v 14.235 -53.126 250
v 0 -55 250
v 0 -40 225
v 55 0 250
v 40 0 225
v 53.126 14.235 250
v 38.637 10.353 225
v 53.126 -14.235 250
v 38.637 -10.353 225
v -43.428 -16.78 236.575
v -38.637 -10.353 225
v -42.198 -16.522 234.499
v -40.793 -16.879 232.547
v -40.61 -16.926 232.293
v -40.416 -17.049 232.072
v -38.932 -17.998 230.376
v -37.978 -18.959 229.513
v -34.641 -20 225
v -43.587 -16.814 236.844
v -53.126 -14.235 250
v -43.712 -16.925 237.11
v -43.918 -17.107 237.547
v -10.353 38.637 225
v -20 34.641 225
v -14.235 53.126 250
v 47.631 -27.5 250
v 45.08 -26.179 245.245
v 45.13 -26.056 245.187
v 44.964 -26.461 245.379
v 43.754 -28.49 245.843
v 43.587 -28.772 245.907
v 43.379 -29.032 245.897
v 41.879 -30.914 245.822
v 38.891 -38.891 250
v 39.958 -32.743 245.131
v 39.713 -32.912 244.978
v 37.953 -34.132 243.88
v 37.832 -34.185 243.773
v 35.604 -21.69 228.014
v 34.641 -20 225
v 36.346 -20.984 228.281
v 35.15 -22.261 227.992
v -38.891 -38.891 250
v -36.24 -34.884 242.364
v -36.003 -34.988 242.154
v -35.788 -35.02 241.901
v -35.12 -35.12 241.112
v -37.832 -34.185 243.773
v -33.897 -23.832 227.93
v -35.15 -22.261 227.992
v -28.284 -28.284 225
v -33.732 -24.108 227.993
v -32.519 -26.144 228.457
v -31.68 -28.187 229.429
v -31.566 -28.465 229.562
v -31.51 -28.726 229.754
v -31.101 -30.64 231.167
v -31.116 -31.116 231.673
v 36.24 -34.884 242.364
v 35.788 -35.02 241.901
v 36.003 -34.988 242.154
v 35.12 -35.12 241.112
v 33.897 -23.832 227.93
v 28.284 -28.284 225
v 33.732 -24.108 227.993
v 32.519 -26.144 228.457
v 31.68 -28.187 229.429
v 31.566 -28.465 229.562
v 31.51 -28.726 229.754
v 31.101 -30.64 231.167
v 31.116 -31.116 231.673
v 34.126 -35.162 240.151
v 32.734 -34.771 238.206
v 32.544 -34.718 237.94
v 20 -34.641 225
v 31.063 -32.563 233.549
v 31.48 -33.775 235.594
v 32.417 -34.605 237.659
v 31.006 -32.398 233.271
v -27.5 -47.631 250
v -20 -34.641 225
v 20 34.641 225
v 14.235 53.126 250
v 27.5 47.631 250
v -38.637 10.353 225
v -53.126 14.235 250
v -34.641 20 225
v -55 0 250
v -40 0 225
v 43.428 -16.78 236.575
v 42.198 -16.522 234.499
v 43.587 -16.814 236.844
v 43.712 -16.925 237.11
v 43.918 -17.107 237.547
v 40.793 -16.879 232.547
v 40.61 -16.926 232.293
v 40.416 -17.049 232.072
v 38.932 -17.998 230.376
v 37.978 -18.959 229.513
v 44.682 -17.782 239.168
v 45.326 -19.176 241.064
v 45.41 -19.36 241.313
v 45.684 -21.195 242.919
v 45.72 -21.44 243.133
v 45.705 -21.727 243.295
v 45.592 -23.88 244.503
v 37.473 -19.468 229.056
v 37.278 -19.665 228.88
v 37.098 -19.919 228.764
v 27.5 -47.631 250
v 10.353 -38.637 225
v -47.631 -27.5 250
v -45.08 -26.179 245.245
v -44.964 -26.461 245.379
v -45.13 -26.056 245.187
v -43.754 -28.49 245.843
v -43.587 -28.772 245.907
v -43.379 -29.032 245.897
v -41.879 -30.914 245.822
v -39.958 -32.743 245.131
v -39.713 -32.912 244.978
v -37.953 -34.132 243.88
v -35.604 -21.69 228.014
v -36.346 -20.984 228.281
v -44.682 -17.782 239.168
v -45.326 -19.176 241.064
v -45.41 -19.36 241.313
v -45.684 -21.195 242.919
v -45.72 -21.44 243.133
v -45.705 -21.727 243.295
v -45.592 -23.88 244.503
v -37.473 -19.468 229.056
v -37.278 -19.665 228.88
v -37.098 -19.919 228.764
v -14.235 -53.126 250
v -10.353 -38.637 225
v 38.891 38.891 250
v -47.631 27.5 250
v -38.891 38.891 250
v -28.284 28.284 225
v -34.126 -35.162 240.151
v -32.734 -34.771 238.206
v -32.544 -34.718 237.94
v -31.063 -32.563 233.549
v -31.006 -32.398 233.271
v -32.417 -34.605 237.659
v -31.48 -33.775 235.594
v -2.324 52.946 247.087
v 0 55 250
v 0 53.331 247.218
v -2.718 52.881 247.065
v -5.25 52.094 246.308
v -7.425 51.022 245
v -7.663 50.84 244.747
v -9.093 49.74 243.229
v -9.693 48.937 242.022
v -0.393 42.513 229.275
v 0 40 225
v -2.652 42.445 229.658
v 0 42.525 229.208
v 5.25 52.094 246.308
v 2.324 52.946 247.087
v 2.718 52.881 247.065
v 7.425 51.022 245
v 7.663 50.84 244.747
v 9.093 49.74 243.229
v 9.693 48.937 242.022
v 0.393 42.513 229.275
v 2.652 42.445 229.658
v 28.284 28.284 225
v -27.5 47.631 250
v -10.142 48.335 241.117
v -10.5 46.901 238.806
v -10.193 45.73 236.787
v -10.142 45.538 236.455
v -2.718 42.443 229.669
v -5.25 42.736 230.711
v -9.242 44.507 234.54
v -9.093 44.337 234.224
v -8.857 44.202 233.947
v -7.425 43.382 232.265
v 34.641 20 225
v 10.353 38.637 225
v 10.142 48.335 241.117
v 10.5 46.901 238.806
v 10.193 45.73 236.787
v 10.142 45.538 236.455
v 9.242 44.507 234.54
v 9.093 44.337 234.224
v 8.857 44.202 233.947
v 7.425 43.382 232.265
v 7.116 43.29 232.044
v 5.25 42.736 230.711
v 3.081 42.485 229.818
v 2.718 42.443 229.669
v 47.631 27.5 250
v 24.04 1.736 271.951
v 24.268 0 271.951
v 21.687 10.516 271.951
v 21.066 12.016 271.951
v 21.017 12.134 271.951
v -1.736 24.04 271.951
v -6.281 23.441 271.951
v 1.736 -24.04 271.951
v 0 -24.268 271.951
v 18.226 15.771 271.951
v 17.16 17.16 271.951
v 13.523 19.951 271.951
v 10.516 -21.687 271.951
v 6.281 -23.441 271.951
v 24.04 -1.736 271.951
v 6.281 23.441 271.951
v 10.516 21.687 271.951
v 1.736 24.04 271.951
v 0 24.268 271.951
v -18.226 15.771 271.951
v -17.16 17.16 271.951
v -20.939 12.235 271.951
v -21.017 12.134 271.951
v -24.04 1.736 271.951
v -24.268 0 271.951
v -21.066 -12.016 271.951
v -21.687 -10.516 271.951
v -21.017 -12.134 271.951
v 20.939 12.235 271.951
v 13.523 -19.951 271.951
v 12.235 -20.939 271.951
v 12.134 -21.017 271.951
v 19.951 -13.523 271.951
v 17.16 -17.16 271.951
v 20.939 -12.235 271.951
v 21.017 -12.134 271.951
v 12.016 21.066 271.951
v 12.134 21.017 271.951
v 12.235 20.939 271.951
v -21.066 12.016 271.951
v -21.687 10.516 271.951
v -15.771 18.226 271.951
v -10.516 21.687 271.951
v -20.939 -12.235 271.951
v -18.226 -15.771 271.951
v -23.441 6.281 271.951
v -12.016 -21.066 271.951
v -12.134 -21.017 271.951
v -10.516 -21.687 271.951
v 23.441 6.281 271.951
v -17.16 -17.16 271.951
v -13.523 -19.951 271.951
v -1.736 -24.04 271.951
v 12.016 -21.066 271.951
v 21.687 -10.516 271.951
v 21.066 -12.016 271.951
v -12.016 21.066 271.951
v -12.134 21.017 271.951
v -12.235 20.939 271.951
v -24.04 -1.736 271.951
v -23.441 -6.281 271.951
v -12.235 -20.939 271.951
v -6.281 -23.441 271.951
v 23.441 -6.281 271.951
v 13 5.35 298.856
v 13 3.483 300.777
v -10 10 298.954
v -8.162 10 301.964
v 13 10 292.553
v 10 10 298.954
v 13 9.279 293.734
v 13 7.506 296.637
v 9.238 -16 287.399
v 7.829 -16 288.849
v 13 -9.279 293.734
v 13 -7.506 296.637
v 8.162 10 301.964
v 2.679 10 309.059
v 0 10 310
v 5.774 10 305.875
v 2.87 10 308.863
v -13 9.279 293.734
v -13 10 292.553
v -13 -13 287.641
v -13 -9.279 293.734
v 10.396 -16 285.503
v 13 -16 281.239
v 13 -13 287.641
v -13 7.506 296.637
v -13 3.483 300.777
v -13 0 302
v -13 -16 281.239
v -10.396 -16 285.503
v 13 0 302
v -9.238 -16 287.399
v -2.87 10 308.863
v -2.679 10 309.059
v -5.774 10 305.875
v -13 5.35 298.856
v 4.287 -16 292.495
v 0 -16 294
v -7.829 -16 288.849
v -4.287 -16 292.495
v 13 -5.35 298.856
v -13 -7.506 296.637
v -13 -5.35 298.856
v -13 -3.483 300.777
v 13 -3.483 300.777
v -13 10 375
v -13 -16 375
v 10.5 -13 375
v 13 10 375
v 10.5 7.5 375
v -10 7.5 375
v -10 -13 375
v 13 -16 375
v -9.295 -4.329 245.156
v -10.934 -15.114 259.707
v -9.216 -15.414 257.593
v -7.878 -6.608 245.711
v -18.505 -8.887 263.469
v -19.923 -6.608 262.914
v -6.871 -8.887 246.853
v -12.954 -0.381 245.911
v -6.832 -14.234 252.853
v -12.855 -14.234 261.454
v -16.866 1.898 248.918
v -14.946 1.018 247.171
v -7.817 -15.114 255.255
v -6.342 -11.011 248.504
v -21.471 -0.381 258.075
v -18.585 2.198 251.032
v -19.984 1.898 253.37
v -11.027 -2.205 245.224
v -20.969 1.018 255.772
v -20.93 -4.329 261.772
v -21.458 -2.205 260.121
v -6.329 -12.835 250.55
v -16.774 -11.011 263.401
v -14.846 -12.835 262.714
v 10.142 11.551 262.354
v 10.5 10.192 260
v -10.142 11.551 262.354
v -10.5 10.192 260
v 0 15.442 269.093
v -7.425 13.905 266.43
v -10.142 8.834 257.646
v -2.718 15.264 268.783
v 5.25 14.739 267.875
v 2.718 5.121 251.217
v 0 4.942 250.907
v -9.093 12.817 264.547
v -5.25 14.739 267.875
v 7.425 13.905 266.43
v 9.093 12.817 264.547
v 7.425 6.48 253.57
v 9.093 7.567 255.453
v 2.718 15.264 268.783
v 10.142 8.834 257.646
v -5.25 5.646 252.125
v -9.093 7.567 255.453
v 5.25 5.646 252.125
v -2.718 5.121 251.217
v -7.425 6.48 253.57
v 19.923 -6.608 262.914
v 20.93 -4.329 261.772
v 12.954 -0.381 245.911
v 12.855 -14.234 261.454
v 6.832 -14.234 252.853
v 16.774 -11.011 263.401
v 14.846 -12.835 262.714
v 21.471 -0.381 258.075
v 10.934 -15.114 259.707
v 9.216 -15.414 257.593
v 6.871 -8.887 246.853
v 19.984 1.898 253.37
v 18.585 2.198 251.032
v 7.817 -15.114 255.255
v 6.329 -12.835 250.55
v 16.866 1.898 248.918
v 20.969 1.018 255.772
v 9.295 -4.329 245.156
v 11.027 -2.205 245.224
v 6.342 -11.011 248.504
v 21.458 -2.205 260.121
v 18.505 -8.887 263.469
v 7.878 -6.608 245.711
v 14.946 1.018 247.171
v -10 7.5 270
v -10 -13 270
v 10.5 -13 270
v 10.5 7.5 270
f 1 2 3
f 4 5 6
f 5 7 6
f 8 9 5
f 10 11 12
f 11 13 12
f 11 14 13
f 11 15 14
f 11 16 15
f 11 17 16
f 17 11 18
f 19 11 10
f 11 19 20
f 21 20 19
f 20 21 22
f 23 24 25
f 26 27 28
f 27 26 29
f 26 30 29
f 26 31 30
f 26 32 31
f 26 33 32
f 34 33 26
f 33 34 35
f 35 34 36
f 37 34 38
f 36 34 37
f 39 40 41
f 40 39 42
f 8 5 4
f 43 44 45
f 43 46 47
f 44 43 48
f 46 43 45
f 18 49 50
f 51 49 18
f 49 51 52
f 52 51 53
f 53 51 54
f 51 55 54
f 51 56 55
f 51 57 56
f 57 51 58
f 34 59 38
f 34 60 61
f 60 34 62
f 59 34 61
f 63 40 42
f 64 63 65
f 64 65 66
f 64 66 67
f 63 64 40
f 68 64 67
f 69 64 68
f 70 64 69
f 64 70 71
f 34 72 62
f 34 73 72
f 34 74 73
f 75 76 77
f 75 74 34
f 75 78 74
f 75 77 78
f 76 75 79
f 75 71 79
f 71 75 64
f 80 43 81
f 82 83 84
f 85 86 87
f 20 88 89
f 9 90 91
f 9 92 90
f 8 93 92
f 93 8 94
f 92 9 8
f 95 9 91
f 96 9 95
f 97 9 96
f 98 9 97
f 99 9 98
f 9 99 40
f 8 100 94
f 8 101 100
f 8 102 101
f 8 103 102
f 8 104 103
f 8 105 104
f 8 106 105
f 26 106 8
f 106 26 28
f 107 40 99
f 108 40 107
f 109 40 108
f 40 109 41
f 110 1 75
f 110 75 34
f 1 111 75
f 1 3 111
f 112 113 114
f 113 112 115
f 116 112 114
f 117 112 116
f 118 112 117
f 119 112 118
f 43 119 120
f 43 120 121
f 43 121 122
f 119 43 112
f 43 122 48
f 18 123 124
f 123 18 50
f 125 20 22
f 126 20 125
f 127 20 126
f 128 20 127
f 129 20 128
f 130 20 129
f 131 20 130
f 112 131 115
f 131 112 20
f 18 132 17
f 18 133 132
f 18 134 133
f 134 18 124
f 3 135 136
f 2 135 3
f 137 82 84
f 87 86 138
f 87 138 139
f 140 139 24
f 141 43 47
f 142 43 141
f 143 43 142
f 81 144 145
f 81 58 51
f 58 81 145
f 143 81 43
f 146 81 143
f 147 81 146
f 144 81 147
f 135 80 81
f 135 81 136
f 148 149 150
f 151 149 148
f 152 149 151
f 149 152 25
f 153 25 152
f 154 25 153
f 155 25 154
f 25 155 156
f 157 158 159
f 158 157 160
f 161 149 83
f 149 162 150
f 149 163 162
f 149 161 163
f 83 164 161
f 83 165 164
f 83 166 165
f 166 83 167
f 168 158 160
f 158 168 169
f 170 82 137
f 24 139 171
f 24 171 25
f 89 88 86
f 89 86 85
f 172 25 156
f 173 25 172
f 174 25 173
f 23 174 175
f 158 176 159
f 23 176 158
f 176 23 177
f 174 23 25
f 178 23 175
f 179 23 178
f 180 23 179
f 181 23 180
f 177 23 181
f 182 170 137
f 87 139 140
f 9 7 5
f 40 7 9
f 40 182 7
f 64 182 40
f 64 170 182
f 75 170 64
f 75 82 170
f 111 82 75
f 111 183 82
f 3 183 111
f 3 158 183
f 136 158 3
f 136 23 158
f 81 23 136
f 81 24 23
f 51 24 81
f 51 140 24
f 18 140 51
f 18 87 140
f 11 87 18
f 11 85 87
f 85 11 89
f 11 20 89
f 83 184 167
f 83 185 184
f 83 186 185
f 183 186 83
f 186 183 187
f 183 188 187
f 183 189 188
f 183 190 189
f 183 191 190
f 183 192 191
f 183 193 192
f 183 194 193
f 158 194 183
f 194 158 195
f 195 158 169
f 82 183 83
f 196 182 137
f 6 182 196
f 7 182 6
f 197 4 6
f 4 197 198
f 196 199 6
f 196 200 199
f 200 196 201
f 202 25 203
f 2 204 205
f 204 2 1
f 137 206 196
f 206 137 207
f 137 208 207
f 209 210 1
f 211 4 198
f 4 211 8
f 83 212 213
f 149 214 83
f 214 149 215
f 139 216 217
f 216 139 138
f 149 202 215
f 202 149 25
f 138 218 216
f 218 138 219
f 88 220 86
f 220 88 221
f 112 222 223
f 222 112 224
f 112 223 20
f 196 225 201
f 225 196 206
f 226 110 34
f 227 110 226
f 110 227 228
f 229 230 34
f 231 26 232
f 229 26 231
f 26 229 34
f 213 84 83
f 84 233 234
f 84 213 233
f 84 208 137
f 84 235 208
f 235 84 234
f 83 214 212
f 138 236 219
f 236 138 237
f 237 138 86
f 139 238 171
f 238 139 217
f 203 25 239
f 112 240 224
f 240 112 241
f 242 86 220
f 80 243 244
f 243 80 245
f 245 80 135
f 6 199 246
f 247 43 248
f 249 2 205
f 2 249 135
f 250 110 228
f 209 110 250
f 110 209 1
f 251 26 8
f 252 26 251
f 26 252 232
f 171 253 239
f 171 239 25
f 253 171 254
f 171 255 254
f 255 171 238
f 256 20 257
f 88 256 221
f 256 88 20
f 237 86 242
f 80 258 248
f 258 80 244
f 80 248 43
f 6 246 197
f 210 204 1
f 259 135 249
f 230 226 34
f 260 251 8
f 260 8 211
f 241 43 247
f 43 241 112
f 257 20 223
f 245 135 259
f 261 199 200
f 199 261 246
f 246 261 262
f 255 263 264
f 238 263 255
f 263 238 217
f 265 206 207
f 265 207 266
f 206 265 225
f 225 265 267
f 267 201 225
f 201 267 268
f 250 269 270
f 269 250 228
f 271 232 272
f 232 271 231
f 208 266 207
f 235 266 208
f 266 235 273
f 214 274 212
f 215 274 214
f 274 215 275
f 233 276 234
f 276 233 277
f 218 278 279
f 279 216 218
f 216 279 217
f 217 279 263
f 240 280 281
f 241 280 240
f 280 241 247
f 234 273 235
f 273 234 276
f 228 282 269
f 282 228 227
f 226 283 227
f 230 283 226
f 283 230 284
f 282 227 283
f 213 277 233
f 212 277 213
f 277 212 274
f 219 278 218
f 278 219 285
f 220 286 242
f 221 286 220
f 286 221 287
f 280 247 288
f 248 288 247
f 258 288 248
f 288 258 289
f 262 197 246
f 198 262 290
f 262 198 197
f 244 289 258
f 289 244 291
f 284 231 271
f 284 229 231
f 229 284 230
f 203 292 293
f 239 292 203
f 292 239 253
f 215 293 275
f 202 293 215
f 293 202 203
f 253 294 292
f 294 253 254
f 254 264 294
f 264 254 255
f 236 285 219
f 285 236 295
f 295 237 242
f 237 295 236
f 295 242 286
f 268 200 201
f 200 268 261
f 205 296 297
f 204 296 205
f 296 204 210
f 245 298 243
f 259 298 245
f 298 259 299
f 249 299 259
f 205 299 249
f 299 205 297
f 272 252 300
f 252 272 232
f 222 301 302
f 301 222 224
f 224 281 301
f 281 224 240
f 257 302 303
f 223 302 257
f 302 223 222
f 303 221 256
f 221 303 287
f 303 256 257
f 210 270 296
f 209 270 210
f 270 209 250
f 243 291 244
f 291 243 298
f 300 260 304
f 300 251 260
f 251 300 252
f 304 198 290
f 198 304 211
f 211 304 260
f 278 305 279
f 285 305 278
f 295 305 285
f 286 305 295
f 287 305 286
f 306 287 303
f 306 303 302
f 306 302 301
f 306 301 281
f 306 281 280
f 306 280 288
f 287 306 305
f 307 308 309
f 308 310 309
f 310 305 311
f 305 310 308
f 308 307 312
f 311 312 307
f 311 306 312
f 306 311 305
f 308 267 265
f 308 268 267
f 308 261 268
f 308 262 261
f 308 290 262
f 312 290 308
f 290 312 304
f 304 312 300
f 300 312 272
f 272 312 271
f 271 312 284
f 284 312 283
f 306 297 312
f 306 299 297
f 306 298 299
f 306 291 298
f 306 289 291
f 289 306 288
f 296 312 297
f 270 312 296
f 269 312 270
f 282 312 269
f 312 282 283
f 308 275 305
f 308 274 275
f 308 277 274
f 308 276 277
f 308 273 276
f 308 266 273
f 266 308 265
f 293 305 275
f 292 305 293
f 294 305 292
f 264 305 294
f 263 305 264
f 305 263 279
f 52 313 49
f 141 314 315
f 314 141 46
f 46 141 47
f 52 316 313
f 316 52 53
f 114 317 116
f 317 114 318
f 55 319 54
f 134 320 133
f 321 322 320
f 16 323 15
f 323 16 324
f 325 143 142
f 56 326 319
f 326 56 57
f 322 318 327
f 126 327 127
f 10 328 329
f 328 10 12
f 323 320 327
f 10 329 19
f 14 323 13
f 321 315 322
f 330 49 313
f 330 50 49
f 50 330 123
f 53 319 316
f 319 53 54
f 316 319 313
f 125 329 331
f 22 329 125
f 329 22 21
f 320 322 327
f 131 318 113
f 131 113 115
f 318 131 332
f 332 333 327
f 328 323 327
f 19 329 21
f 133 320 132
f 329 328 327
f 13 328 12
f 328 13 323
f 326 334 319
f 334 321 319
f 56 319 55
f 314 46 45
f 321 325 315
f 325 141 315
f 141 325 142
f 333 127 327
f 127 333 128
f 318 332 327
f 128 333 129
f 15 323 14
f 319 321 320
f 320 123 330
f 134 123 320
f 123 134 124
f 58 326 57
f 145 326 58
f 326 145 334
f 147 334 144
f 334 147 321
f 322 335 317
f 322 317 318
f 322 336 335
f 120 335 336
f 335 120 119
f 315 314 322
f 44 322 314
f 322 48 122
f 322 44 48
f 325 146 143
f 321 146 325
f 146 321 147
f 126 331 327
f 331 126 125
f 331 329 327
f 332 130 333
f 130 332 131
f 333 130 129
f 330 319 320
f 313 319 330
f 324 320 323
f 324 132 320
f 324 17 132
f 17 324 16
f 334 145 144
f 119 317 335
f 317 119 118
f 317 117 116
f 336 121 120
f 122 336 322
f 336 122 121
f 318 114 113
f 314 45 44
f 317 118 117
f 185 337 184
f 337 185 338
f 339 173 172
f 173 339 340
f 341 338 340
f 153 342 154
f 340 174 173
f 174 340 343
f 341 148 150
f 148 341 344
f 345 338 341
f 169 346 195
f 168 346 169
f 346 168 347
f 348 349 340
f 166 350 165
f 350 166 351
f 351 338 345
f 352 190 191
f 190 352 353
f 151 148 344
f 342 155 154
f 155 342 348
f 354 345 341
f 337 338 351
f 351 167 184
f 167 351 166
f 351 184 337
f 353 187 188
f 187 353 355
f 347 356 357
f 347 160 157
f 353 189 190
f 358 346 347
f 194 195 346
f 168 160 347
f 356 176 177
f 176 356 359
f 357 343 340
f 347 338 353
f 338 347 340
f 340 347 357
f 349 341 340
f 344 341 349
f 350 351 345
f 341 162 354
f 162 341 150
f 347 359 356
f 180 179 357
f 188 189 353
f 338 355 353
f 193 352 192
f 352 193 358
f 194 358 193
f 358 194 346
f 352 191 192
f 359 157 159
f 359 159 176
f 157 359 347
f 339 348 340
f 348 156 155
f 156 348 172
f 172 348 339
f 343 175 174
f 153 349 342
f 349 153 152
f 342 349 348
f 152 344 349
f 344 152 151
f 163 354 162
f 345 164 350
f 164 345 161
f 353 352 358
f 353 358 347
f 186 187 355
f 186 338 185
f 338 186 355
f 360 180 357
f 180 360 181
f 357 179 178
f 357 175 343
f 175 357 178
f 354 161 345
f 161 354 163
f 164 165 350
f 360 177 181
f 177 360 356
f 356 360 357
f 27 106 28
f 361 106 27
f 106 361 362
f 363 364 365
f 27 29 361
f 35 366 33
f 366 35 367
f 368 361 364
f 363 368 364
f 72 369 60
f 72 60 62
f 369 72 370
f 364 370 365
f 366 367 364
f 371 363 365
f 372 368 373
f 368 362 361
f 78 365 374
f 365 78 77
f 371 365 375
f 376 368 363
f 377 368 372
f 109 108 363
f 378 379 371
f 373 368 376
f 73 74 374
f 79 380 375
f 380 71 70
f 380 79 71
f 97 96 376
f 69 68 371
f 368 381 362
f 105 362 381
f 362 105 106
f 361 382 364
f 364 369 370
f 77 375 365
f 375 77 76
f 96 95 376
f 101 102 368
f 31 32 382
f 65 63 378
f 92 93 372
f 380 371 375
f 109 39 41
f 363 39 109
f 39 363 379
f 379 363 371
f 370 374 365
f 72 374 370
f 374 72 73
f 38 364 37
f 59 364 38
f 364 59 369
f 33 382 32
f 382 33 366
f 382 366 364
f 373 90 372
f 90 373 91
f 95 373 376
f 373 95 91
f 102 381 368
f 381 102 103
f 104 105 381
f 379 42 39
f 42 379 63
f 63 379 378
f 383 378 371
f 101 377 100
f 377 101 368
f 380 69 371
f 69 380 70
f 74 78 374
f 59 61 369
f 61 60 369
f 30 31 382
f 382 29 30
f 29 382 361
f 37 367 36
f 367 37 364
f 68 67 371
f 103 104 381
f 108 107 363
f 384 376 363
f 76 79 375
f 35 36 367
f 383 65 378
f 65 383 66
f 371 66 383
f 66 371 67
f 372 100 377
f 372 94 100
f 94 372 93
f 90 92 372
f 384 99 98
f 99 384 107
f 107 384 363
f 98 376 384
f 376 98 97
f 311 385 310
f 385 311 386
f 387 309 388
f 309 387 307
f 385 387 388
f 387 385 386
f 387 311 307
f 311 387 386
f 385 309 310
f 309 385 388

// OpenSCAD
raio_tubo = 10.5;
comprimento_pe = 300;
angulo_pe = 12;
cylinder_sides = 24;

difference() {       
    bloco();

    translate([0,0,110])
    tripes();    
    
    translate([-10,-13,270])
    cube([20.5,20.5,110]);
}

module bloco() 
{
    color([1,0,0,0.5])    
    difference() {        
        union() {
            translate([0,0,225])
            cylinder(r1=40, r2=55, h=25, $fn=cylinder_sides);
        
            translate([0,0,250])
            cylinder(r1=55, r2=20, h=25, $fn=cylinder_sides);
        }
    }   
    
    translate([0,0,270])
    cylinder(r1=25, r2=10, h=40, $fn=cylinder_sides);
    
    color([1,0,0,0.5])    
    translate([0,-3,325])
    cube([26,26,100], true);   
    
}
    

module tripes() 
{
    translate([-220,-170,0])
    rotate([-33,55,0])
    cylinder(r1=raio_tubo, r2=raio_tubo, h=comprimento_pe, $fn=cylinder_sides);

    translate([0,270,0])
    rotate([60,0,0])
    cylinder(r1=raio_tubo, r2=raio_tubo, h=comprimento_pe, $fn=cylinder_sides);

    translate([220,-170,0])
    rotate([-33,-55,0])
    cylinder(r1=raio_tubo, r2=raio_tubo, h=comprimento_pe, $fn=cylinder_sides);
   
}
    
